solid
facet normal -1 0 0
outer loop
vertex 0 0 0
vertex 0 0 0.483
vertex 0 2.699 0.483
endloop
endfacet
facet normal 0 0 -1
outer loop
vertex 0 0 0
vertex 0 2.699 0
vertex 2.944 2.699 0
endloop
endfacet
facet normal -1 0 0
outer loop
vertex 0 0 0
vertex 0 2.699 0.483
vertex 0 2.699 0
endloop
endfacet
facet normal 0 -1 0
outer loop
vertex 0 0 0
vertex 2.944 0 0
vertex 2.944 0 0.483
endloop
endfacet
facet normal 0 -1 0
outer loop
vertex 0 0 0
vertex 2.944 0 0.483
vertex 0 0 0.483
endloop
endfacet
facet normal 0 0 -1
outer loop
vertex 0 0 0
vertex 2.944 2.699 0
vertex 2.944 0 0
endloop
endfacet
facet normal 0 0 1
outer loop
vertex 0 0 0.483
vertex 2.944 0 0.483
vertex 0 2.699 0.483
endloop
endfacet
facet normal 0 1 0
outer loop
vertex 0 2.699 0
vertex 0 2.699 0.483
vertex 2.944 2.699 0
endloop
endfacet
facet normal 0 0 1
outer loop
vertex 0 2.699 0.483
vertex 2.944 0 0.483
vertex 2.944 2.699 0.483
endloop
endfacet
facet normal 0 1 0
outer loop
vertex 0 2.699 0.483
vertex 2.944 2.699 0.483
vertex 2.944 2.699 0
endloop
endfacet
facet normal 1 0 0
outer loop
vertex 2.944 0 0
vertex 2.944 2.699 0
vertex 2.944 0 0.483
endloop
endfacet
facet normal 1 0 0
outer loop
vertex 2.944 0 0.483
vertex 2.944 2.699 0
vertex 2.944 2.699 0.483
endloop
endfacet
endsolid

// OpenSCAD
/* Warning, this is a very basic generator with a lot of approximation 
input data : [WLCSP, FSB, 2.944x2.699x0.483mm, 45, , A, C04-21247A]
generated by com.zoubworld.electronics.cad.model3d.Basic
Date : Sun Feb 15 10:50:49 CET 2026
*/

//body
color("black")
translate([0,0,0])
cube([2.944,2.699,0.483], center=false);
